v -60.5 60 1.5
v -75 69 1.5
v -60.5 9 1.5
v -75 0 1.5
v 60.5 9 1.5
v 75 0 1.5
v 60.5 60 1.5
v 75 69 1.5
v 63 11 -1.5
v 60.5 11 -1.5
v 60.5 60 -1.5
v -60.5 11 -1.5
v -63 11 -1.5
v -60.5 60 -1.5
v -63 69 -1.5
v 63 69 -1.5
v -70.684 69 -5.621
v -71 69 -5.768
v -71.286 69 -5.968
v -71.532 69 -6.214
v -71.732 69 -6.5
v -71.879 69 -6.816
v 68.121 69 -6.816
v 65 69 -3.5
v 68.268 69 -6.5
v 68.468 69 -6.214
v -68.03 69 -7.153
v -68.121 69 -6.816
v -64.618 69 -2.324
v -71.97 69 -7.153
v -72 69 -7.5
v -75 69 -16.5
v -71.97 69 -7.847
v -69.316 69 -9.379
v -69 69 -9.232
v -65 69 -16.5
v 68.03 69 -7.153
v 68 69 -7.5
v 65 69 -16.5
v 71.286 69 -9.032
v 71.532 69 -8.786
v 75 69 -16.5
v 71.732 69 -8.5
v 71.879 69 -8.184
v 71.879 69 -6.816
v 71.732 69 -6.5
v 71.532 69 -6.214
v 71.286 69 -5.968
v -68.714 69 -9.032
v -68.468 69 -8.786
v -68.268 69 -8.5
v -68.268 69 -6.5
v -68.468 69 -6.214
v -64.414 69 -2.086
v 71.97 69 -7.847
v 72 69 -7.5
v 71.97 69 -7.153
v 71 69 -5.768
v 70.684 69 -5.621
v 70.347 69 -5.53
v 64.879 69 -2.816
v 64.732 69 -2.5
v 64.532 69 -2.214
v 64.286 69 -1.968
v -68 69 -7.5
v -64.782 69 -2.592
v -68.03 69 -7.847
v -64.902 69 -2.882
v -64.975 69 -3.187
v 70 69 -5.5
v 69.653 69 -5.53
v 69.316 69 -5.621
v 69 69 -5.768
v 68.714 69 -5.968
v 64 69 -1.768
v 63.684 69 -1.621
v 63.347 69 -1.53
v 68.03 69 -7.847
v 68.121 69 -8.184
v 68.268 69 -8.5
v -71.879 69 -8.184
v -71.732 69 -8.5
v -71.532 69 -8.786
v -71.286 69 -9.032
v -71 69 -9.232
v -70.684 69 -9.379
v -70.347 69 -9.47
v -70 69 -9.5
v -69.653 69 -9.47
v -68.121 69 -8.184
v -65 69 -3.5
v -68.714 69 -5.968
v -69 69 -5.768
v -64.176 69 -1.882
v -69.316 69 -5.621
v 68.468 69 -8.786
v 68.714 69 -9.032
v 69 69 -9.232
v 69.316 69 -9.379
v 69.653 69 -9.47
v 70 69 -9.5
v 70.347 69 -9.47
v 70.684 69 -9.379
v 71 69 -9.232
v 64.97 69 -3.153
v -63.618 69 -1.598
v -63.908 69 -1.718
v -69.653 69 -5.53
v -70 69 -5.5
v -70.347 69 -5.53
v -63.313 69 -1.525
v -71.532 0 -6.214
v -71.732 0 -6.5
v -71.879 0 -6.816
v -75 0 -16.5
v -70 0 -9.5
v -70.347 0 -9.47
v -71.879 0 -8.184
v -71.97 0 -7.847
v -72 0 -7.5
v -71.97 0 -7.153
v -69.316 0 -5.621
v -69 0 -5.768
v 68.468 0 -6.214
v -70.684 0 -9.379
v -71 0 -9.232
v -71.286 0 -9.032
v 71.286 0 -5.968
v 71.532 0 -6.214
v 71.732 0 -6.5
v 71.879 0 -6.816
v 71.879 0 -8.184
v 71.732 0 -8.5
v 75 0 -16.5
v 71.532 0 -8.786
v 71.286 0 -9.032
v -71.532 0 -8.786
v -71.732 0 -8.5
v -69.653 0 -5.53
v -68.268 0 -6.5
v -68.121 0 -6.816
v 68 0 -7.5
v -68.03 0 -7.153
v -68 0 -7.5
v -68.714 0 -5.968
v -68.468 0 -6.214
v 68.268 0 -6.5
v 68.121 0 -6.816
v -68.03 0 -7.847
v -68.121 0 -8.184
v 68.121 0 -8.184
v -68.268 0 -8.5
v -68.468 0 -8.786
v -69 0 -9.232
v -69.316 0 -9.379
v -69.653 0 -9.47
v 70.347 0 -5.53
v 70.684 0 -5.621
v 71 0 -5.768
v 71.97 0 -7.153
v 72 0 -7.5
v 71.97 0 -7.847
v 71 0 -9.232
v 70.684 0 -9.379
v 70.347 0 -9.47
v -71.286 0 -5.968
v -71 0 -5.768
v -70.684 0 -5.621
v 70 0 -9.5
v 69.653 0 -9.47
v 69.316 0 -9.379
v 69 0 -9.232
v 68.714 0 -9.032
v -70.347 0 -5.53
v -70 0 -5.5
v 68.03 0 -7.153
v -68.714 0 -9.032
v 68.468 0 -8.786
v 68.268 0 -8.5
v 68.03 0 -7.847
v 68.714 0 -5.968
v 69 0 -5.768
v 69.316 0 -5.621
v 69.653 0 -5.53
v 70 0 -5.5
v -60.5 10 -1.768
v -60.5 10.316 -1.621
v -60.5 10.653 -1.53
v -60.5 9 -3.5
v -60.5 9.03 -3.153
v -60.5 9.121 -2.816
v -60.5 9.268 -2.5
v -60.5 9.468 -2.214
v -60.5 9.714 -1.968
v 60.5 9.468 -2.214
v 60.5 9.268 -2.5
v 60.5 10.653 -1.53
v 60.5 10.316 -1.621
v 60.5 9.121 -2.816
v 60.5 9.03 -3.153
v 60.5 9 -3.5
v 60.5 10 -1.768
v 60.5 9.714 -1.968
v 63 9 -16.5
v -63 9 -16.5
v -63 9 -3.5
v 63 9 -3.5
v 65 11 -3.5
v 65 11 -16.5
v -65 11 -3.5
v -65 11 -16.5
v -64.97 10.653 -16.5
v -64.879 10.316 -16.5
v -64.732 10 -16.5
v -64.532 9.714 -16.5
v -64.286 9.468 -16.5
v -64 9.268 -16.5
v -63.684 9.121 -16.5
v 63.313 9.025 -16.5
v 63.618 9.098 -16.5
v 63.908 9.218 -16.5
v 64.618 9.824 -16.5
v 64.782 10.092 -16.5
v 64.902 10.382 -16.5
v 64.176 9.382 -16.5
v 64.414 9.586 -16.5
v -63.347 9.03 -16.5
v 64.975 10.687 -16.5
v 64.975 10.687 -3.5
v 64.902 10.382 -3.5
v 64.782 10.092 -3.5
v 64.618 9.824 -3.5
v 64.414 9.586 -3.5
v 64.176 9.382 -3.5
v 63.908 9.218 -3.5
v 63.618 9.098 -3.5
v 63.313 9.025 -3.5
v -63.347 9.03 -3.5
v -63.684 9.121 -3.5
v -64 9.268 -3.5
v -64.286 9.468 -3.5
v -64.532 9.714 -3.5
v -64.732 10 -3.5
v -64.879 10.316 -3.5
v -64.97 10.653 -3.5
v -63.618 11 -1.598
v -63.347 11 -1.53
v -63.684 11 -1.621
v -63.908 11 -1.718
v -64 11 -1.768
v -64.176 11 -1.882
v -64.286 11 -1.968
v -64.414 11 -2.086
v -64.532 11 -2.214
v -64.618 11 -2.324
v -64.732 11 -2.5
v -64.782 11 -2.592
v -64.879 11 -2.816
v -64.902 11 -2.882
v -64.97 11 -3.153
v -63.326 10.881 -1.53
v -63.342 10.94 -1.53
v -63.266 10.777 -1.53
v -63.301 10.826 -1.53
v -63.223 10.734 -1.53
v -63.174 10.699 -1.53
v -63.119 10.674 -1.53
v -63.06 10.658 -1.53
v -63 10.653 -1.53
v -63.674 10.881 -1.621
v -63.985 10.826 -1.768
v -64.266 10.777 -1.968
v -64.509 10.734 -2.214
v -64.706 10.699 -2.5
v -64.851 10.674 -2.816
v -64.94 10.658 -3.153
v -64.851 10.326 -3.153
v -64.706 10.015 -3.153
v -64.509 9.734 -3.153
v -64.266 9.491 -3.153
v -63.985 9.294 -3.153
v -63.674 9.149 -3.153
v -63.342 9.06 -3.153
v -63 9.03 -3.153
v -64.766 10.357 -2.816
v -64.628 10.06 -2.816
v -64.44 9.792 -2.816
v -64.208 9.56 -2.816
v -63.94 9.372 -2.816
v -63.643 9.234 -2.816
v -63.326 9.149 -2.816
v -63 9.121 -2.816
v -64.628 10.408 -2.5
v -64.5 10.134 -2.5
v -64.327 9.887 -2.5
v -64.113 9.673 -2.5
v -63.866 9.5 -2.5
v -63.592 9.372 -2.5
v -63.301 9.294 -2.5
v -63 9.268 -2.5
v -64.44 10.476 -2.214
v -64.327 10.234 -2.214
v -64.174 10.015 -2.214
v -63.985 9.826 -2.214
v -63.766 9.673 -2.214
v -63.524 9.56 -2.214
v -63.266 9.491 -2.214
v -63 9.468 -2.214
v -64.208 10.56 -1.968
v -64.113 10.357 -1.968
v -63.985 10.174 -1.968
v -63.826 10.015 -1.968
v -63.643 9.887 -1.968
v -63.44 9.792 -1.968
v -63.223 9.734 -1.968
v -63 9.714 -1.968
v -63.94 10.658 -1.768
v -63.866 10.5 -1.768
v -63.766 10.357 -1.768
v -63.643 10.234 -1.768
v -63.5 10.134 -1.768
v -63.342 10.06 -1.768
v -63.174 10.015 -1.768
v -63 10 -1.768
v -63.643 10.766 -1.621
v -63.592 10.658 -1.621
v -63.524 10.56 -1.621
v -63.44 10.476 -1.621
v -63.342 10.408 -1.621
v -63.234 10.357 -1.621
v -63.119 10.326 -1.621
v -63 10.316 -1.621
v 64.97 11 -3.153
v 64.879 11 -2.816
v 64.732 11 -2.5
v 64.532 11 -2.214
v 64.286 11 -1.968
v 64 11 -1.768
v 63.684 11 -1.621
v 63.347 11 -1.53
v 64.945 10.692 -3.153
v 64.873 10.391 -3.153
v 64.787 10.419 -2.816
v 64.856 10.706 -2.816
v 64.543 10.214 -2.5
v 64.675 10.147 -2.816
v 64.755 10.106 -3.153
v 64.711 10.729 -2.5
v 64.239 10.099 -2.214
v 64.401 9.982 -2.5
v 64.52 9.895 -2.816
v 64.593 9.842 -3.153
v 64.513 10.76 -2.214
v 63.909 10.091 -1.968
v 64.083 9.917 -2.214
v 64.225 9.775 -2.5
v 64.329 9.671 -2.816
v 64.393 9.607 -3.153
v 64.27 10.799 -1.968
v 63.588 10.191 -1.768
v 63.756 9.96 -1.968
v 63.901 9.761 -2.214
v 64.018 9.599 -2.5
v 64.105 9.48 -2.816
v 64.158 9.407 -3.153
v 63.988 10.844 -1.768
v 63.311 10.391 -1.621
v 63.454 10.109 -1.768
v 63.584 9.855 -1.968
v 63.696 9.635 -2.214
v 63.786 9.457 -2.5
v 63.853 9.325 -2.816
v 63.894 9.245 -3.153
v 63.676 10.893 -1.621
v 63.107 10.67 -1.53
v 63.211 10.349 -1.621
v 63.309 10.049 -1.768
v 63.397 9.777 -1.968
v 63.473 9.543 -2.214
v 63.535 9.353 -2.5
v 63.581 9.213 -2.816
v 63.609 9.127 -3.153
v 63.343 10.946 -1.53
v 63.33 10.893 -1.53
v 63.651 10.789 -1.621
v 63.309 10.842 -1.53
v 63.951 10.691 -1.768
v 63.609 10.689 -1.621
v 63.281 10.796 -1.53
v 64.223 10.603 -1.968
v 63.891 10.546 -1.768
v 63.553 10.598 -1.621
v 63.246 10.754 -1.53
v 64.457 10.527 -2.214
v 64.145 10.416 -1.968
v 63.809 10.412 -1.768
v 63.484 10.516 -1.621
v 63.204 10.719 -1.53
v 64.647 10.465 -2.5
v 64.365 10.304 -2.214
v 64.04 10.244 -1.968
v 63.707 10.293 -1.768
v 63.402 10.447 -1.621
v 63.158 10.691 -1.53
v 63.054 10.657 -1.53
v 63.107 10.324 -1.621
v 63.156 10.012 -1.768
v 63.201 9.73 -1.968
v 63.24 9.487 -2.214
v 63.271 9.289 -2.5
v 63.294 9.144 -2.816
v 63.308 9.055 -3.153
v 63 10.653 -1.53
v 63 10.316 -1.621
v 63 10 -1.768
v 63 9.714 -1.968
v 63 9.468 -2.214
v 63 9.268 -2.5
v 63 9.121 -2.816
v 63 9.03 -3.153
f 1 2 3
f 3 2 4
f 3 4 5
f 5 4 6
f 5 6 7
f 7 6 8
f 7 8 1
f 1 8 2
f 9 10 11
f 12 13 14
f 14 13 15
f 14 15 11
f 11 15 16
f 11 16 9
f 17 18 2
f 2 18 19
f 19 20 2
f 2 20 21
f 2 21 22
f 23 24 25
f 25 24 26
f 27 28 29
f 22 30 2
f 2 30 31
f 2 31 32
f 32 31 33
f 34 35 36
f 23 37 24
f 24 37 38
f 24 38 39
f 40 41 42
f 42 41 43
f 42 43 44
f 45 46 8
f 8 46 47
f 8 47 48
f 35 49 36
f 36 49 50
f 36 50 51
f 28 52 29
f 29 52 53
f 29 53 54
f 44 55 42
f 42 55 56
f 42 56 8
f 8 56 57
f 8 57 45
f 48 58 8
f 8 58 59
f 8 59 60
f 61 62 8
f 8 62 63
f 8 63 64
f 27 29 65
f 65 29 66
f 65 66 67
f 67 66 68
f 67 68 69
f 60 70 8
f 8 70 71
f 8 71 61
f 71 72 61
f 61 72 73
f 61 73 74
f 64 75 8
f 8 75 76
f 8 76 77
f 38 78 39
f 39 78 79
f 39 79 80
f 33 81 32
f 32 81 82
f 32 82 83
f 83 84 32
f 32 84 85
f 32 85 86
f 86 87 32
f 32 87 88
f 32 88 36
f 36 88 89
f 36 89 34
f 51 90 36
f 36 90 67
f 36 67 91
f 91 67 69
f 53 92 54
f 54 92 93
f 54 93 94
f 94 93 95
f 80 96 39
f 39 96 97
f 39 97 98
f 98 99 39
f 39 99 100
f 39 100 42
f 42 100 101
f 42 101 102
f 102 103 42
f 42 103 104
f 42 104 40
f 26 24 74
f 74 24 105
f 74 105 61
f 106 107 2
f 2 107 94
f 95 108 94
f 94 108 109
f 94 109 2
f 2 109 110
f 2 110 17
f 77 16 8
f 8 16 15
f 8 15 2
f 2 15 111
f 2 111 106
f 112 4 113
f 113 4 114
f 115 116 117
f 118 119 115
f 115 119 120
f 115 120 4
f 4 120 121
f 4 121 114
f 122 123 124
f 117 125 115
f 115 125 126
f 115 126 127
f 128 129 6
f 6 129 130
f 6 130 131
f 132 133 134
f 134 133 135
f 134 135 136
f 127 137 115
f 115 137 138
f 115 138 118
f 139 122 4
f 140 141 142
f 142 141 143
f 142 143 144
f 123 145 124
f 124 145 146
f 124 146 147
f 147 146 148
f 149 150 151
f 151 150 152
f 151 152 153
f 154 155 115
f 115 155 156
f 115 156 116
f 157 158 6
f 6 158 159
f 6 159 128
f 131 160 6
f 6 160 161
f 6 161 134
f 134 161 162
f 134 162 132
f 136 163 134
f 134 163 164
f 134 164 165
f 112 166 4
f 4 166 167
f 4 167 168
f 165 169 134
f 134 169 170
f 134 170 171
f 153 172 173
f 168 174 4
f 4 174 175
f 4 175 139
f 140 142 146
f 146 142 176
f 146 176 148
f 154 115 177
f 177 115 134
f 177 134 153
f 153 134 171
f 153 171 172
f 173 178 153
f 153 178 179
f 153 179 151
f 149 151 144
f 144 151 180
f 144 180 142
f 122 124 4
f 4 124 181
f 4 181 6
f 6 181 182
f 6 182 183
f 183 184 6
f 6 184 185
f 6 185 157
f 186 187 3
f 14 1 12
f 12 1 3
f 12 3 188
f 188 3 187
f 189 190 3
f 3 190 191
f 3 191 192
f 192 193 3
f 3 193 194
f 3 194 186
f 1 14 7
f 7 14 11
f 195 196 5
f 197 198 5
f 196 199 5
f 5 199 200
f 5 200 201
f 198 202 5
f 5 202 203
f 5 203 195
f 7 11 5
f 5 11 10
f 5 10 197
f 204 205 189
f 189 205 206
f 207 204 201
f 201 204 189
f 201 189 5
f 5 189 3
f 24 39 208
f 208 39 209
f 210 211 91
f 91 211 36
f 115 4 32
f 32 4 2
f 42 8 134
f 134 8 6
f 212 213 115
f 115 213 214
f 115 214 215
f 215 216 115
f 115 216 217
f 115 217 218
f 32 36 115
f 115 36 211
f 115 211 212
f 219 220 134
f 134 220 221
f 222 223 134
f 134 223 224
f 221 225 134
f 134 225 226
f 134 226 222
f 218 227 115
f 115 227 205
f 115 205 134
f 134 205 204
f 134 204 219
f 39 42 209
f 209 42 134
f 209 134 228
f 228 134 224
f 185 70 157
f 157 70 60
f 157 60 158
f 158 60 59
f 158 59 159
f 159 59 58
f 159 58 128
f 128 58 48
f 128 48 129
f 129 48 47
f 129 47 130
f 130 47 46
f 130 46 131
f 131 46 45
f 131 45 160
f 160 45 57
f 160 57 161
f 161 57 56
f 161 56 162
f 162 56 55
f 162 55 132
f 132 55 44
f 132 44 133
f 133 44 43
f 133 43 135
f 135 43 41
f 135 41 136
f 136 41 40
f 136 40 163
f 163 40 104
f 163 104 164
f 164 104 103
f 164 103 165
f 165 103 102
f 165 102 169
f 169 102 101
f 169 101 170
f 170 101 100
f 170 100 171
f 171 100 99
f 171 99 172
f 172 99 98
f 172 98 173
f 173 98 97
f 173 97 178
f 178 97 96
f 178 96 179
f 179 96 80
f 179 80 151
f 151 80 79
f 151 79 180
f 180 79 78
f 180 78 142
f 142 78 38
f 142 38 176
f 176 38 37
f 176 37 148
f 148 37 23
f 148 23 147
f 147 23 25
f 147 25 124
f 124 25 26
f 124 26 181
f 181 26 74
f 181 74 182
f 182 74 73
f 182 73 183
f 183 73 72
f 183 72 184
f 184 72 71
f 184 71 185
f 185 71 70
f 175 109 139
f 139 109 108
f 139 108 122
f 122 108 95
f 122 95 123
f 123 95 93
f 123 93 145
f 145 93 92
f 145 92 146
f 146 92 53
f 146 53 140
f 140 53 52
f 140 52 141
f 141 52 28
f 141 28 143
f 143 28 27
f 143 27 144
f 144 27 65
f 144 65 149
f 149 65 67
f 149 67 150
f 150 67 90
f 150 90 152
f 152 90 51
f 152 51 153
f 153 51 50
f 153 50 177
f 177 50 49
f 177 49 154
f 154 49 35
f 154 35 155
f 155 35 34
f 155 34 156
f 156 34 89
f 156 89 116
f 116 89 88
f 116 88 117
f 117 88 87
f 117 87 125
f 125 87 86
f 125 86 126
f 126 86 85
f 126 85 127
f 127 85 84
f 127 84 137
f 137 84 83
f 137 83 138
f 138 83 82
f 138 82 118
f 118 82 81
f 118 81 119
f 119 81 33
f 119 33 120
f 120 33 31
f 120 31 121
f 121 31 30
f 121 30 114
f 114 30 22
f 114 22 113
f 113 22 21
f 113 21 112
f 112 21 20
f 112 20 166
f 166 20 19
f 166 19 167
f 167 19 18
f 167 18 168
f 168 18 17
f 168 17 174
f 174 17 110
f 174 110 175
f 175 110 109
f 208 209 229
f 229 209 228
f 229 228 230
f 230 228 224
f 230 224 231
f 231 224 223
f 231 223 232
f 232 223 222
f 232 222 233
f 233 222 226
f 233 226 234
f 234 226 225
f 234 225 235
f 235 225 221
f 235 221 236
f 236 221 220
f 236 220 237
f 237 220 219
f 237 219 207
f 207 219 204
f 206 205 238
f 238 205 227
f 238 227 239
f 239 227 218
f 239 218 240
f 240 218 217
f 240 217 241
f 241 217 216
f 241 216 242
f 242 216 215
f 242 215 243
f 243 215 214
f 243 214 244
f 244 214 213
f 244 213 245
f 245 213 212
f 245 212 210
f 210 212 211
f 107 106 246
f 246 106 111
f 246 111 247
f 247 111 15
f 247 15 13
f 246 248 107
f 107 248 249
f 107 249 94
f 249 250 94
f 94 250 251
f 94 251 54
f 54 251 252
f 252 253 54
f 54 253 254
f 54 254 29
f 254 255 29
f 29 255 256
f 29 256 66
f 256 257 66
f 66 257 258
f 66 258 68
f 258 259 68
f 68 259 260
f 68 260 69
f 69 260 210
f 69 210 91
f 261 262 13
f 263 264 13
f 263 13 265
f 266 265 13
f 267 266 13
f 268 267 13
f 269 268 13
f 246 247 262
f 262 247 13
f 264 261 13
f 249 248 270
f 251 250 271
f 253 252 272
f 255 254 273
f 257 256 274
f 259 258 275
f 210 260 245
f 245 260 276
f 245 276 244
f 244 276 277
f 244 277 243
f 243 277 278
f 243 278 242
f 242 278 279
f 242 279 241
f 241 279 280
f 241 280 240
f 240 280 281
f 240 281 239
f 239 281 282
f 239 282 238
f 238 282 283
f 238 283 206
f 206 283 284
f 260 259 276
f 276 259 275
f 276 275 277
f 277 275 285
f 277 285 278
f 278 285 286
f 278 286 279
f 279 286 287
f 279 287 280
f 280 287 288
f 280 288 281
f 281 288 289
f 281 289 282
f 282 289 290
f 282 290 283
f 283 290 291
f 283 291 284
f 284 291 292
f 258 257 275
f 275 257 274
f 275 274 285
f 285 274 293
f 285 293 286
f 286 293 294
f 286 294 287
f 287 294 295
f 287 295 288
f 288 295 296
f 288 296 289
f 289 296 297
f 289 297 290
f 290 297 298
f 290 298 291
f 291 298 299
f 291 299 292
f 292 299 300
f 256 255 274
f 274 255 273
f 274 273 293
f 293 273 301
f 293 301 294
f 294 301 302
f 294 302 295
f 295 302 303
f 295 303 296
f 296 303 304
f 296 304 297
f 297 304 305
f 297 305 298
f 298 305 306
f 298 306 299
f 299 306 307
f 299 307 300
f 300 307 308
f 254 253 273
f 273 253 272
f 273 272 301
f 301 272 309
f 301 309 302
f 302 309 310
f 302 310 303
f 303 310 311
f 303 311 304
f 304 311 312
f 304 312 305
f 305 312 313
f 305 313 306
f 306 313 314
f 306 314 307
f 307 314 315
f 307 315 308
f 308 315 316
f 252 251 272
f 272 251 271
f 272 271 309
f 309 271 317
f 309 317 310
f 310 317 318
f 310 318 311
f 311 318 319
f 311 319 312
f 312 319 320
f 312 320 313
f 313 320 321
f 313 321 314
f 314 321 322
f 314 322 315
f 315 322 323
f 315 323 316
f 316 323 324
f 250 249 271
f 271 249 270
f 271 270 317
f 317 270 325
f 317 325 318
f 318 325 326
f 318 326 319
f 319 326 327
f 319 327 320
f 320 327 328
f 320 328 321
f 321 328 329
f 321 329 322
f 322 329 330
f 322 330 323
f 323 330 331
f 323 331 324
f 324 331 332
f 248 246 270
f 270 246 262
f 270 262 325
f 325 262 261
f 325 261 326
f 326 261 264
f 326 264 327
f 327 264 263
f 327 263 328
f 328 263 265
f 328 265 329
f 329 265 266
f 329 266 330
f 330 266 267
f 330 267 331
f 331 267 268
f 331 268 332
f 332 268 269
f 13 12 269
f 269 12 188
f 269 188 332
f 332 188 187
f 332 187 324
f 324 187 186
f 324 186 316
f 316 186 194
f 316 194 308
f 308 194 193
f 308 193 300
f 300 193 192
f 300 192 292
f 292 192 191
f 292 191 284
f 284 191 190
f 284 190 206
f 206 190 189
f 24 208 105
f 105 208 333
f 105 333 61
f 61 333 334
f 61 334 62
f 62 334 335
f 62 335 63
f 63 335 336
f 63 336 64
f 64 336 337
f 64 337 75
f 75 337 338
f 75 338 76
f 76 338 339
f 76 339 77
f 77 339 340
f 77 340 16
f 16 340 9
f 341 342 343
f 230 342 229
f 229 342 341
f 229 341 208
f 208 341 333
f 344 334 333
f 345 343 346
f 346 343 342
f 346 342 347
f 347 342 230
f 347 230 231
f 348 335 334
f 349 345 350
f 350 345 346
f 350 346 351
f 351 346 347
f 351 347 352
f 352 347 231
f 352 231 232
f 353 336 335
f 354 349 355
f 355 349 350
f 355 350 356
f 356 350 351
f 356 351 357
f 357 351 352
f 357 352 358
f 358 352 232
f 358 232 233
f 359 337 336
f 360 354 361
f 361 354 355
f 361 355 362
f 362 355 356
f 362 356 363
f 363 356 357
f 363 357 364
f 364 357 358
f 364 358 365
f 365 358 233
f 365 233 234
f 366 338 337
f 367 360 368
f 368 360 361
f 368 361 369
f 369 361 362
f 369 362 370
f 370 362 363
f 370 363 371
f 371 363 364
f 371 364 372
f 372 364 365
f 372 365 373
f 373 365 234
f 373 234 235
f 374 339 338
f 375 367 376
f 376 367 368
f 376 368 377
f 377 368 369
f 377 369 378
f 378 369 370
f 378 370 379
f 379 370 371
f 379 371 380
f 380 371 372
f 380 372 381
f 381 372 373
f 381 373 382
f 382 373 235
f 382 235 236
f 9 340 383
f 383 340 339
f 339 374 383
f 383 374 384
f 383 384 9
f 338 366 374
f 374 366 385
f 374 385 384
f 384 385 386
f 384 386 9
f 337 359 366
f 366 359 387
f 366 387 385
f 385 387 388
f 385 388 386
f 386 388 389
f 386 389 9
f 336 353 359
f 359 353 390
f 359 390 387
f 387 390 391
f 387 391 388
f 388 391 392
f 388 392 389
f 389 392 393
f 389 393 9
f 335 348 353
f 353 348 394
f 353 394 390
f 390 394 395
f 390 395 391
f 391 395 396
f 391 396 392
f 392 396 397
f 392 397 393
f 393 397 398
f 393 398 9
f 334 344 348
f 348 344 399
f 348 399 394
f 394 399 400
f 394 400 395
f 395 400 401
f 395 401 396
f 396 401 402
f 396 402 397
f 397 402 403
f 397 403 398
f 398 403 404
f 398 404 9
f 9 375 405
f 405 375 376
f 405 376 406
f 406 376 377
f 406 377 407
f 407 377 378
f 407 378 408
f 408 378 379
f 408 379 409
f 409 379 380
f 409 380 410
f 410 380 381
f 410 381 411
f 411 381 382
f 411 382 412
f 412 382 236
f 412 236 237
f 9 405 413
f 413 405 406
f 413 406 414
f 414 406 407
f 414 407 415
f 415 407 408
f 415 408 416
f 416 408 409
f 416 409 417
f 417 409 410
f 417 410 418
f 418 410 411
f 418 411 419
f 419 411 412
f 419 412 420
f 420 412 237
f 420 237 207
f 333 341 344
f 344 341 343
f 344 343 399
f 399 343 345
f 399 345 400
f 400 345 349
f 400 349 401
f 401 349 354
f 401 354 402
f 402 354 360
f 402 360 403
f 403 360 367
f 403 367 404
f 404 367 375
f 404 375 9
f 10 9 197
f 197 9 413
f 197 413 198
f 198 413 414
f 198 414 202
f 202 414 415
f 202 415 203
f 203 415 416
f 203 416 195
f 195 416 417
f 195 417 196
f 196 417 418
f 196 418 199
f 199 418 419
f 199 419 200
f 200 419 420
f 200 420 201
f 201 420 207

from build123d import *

# Parameters (mm, degrees)
SKETCH1_W                = 130
SKETCH1_H                = 3
BOSS_EXTRUDE1_DEPTH      = 69
SKETCH2_W                = 121
SKETCH2_H                = 51
CUT_EXTRUDE1_DEPTH       = 65
BOSS_EXTRUDE3_DEPTH      = 15
BOSS_EXTRUDE3_DEPTH_BACK = 3
SKETCH4_R                = 2
CUT_EXTRUDE2_DEPTH       = 70
FILLET1_R                = 2
FILLET2_R                = 2


with BuildPart() as part:
    # Sketch1 → Boss-Extrude1 (new body)
    with BuildSketch(Plane(origin=(0, 0, 0), x_dir=(1, 0, 0), z_dir=(0, 1, 0))):
        Rectangle(SKETCH1_W, SKETCH1_H)
    extrude(amount=BOSS_EXTRUDE1_DEPTH)

    # Sketch2 → Cut-Extrude1 (cut)
    with BuildSketch(Plane.XY.offset(1.5)):
        with Locations((0, 34.5)):
            Rectangle(SKETCH2_W, SKETCH2_H)
    extrude(amount=-CUT_EXTRUDE1_DEPTH, mode=Mode.SUBTRACT)

    # Sketch3 → Boss-Extrude3 (add, two sides)
    with BuildSketch(Plane(origin=(0, 0, -1.5), x_dir=(-1, 0, 0), z_dir=(0, 0, -1))) as boss_extrude3_sk:
        Polygon((75, 0), (-75, 0), (-75, 69), (-65, 69), (-65, 9), (65, 9), (65, 69), (75, 69), align=None)
    extrude(amount=BOSS_EXTRUDE3_DEPTH)
    extrude(boss_extrude3_sk.sketch, amount=-BOSS_EXTRUDE3_DEPTH_BACK)

    # Sketch4 → Cut-Extrude2 (cut, through all)
    with BuildSketch(Plane(origin=(0, 69, 0), x_dir=(1, 0, 0), z_dir=(0, 1, 0))):
        with Locations((-70, 7.5)):
            Circle(SKETCH4_R)
        with Locations((70, 7.5)):
            Circle(SKETCH4_R)
    extrude(amount=-CUT_EXTRUDE2_DEPTH, mode=Mode.SUBTRACT)

    # Fillet1
    fillet1_edges = [part.edges().sort_by_distance(p)[0] for p in [
        (-65, 9, -9),
        (65, 9, -9),
    ]]
    fillet(fillet1_edges, radius=FILLET1_R)

    # Fillet2
    fillet2_edges = [part.edges().sort_by_distance(p)[0] for p in [
        (-61.75, 9, -1.5),
        (-65, 40, -1.5),
        (61.75, 9, -1.5),
        (65, 40, -1.5),
        (-64.414213562, 9.585786438, -1.5),
        (64.414213562, 9.585786438, -1.5),
    ]]
    fillet(fillet2_edges, radius=FILLET2_R)


solid = part.part
